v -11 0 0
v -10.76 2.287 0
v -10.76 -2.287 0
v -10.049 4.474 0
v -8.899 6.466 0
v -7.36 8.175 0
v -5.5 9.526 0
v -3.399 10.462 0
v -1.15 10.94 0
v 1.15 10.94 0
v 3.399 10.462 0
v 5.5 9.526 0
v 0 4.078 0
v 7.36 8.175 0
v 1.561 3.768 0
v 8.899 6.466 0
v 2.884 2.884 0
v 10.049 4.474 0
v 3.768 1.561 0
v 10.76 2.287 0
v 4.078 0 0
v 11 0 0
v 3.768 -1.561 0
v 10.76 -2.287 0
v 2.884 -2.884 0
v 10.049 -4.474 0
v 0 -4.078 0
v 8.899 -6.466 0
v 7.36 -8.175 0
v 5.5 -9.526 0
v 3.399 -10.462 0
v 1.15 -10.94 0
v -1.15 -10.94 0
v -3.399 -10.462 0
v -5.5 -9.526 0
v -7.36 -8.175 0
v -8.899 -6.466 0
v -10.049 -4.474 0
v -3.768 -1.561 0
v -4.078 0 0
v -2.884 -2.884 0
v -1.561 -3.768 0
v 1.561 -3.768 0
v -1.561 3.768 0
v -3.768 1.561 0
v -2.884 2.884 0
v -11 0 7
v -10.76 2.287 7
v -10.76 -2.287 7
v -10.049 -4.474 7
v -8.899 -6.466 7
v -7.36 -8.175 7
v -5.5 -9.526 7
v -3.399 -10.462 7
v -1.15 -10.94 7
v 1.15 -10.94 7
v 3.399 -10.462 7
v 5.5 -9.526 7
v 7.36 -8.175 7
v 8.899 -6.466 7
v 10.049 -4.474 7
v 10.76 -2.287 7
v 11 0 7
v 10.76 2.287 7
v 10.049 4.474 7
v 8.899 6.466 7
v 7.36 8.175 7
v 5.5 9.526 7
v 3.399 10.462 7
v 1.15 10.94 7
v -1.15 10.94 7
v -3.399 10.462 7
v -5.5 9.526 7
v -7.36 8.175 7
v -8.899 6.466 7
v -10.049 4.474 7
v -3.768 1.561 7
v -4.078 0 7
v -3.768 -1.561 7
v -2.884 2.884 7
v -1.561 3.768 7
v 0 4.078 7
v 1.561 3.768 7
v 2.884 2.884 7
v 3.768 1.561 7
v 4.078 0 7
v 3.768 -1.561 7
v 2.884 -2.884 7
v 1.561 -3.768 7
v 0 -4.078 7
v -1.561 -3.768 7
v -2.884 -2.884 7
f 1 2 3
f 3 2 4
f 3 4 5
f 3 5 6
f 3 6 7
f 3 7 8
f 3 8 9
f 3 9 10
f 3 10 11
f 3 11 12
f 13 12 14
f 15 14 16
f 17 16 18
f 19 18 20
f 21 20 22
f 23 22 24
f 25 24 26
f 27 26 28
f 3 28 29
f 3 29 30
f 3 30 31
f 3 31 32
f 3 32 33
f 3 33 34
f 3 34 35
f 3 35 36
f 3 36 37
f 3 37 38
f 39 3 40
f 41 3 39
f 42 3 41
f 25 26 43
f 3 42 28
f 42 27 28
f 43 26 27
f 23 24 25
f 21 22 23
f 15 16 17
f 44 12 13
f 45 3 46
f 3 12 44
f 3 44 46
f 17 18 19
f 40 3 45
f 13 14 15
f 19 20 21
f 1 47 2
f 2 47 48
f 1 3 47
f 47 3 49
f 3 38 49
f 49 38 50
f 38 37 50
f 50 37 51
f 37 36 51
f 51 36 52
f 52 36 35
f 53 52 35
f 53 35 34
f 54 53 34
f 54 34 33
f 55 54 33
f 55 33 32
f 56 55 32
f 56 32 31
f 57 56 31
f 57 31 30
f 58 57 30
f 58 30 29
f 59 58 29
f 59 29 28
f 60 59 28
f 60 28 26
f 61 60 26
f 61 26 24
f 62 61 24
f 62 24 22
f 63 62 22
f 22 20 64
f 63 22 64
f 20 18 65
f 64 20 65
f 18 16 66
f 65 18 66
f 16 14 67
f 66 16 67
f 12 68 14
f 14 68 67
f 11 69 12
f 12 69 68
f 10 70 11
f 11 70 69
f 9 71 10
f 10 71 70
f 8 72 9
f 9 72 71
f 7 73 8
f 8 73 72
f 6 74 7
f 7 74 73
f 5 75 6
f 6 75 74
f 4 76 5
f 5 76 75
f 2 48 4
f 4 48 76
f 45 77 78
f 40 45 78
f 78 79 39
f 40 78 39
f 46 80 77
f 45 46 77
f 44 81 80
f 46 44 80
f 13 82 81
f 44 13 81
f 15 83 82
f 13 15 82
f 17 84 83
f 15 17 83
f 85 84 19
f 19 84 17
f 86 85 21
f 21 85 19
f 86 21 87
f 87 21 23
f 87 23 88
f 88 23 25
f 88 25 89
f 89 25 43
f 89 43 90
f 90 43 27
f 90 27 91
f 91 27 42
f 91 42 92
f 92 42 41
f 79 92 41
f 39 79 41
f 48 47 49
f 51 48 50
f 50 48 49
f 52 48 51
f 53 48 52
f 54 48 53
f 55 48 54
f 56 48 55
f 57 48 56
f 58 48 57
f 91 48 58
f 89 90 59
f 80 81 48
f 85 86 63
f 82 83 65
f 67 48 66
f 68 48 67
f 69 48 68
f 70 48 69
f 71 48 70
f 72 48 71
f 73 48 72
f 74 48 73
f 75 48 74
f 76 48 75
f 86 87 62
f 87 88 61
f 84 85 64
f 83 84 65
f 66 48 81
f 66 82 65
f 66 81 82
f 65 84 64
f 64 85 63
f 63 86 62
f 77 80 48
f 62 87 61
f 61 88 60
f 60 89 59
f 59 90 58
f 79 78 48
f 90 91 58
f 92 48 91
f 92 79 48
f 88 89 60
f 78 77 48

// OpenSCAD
// printed replacement for 608 bearing
// does not have parameters of real 608 bearing!!!

bearing_dout = 22;  //mm - outer diameter of 608
bearing_din  = 8;   //mm - inner diameter of 608
bearing_b    = 7;   //mm - width of 608

module bearing608() {
	difference() {
		cylinder(h=bearing_b, r=bearing_dout/2);
		translate([0,0,-1]) cylinder(h=bearing_b+2, r=bearing_din/2/cos(360/(2*bearing_din)/2), $fn=2*bearing_din);
	}
}

bearing608();
